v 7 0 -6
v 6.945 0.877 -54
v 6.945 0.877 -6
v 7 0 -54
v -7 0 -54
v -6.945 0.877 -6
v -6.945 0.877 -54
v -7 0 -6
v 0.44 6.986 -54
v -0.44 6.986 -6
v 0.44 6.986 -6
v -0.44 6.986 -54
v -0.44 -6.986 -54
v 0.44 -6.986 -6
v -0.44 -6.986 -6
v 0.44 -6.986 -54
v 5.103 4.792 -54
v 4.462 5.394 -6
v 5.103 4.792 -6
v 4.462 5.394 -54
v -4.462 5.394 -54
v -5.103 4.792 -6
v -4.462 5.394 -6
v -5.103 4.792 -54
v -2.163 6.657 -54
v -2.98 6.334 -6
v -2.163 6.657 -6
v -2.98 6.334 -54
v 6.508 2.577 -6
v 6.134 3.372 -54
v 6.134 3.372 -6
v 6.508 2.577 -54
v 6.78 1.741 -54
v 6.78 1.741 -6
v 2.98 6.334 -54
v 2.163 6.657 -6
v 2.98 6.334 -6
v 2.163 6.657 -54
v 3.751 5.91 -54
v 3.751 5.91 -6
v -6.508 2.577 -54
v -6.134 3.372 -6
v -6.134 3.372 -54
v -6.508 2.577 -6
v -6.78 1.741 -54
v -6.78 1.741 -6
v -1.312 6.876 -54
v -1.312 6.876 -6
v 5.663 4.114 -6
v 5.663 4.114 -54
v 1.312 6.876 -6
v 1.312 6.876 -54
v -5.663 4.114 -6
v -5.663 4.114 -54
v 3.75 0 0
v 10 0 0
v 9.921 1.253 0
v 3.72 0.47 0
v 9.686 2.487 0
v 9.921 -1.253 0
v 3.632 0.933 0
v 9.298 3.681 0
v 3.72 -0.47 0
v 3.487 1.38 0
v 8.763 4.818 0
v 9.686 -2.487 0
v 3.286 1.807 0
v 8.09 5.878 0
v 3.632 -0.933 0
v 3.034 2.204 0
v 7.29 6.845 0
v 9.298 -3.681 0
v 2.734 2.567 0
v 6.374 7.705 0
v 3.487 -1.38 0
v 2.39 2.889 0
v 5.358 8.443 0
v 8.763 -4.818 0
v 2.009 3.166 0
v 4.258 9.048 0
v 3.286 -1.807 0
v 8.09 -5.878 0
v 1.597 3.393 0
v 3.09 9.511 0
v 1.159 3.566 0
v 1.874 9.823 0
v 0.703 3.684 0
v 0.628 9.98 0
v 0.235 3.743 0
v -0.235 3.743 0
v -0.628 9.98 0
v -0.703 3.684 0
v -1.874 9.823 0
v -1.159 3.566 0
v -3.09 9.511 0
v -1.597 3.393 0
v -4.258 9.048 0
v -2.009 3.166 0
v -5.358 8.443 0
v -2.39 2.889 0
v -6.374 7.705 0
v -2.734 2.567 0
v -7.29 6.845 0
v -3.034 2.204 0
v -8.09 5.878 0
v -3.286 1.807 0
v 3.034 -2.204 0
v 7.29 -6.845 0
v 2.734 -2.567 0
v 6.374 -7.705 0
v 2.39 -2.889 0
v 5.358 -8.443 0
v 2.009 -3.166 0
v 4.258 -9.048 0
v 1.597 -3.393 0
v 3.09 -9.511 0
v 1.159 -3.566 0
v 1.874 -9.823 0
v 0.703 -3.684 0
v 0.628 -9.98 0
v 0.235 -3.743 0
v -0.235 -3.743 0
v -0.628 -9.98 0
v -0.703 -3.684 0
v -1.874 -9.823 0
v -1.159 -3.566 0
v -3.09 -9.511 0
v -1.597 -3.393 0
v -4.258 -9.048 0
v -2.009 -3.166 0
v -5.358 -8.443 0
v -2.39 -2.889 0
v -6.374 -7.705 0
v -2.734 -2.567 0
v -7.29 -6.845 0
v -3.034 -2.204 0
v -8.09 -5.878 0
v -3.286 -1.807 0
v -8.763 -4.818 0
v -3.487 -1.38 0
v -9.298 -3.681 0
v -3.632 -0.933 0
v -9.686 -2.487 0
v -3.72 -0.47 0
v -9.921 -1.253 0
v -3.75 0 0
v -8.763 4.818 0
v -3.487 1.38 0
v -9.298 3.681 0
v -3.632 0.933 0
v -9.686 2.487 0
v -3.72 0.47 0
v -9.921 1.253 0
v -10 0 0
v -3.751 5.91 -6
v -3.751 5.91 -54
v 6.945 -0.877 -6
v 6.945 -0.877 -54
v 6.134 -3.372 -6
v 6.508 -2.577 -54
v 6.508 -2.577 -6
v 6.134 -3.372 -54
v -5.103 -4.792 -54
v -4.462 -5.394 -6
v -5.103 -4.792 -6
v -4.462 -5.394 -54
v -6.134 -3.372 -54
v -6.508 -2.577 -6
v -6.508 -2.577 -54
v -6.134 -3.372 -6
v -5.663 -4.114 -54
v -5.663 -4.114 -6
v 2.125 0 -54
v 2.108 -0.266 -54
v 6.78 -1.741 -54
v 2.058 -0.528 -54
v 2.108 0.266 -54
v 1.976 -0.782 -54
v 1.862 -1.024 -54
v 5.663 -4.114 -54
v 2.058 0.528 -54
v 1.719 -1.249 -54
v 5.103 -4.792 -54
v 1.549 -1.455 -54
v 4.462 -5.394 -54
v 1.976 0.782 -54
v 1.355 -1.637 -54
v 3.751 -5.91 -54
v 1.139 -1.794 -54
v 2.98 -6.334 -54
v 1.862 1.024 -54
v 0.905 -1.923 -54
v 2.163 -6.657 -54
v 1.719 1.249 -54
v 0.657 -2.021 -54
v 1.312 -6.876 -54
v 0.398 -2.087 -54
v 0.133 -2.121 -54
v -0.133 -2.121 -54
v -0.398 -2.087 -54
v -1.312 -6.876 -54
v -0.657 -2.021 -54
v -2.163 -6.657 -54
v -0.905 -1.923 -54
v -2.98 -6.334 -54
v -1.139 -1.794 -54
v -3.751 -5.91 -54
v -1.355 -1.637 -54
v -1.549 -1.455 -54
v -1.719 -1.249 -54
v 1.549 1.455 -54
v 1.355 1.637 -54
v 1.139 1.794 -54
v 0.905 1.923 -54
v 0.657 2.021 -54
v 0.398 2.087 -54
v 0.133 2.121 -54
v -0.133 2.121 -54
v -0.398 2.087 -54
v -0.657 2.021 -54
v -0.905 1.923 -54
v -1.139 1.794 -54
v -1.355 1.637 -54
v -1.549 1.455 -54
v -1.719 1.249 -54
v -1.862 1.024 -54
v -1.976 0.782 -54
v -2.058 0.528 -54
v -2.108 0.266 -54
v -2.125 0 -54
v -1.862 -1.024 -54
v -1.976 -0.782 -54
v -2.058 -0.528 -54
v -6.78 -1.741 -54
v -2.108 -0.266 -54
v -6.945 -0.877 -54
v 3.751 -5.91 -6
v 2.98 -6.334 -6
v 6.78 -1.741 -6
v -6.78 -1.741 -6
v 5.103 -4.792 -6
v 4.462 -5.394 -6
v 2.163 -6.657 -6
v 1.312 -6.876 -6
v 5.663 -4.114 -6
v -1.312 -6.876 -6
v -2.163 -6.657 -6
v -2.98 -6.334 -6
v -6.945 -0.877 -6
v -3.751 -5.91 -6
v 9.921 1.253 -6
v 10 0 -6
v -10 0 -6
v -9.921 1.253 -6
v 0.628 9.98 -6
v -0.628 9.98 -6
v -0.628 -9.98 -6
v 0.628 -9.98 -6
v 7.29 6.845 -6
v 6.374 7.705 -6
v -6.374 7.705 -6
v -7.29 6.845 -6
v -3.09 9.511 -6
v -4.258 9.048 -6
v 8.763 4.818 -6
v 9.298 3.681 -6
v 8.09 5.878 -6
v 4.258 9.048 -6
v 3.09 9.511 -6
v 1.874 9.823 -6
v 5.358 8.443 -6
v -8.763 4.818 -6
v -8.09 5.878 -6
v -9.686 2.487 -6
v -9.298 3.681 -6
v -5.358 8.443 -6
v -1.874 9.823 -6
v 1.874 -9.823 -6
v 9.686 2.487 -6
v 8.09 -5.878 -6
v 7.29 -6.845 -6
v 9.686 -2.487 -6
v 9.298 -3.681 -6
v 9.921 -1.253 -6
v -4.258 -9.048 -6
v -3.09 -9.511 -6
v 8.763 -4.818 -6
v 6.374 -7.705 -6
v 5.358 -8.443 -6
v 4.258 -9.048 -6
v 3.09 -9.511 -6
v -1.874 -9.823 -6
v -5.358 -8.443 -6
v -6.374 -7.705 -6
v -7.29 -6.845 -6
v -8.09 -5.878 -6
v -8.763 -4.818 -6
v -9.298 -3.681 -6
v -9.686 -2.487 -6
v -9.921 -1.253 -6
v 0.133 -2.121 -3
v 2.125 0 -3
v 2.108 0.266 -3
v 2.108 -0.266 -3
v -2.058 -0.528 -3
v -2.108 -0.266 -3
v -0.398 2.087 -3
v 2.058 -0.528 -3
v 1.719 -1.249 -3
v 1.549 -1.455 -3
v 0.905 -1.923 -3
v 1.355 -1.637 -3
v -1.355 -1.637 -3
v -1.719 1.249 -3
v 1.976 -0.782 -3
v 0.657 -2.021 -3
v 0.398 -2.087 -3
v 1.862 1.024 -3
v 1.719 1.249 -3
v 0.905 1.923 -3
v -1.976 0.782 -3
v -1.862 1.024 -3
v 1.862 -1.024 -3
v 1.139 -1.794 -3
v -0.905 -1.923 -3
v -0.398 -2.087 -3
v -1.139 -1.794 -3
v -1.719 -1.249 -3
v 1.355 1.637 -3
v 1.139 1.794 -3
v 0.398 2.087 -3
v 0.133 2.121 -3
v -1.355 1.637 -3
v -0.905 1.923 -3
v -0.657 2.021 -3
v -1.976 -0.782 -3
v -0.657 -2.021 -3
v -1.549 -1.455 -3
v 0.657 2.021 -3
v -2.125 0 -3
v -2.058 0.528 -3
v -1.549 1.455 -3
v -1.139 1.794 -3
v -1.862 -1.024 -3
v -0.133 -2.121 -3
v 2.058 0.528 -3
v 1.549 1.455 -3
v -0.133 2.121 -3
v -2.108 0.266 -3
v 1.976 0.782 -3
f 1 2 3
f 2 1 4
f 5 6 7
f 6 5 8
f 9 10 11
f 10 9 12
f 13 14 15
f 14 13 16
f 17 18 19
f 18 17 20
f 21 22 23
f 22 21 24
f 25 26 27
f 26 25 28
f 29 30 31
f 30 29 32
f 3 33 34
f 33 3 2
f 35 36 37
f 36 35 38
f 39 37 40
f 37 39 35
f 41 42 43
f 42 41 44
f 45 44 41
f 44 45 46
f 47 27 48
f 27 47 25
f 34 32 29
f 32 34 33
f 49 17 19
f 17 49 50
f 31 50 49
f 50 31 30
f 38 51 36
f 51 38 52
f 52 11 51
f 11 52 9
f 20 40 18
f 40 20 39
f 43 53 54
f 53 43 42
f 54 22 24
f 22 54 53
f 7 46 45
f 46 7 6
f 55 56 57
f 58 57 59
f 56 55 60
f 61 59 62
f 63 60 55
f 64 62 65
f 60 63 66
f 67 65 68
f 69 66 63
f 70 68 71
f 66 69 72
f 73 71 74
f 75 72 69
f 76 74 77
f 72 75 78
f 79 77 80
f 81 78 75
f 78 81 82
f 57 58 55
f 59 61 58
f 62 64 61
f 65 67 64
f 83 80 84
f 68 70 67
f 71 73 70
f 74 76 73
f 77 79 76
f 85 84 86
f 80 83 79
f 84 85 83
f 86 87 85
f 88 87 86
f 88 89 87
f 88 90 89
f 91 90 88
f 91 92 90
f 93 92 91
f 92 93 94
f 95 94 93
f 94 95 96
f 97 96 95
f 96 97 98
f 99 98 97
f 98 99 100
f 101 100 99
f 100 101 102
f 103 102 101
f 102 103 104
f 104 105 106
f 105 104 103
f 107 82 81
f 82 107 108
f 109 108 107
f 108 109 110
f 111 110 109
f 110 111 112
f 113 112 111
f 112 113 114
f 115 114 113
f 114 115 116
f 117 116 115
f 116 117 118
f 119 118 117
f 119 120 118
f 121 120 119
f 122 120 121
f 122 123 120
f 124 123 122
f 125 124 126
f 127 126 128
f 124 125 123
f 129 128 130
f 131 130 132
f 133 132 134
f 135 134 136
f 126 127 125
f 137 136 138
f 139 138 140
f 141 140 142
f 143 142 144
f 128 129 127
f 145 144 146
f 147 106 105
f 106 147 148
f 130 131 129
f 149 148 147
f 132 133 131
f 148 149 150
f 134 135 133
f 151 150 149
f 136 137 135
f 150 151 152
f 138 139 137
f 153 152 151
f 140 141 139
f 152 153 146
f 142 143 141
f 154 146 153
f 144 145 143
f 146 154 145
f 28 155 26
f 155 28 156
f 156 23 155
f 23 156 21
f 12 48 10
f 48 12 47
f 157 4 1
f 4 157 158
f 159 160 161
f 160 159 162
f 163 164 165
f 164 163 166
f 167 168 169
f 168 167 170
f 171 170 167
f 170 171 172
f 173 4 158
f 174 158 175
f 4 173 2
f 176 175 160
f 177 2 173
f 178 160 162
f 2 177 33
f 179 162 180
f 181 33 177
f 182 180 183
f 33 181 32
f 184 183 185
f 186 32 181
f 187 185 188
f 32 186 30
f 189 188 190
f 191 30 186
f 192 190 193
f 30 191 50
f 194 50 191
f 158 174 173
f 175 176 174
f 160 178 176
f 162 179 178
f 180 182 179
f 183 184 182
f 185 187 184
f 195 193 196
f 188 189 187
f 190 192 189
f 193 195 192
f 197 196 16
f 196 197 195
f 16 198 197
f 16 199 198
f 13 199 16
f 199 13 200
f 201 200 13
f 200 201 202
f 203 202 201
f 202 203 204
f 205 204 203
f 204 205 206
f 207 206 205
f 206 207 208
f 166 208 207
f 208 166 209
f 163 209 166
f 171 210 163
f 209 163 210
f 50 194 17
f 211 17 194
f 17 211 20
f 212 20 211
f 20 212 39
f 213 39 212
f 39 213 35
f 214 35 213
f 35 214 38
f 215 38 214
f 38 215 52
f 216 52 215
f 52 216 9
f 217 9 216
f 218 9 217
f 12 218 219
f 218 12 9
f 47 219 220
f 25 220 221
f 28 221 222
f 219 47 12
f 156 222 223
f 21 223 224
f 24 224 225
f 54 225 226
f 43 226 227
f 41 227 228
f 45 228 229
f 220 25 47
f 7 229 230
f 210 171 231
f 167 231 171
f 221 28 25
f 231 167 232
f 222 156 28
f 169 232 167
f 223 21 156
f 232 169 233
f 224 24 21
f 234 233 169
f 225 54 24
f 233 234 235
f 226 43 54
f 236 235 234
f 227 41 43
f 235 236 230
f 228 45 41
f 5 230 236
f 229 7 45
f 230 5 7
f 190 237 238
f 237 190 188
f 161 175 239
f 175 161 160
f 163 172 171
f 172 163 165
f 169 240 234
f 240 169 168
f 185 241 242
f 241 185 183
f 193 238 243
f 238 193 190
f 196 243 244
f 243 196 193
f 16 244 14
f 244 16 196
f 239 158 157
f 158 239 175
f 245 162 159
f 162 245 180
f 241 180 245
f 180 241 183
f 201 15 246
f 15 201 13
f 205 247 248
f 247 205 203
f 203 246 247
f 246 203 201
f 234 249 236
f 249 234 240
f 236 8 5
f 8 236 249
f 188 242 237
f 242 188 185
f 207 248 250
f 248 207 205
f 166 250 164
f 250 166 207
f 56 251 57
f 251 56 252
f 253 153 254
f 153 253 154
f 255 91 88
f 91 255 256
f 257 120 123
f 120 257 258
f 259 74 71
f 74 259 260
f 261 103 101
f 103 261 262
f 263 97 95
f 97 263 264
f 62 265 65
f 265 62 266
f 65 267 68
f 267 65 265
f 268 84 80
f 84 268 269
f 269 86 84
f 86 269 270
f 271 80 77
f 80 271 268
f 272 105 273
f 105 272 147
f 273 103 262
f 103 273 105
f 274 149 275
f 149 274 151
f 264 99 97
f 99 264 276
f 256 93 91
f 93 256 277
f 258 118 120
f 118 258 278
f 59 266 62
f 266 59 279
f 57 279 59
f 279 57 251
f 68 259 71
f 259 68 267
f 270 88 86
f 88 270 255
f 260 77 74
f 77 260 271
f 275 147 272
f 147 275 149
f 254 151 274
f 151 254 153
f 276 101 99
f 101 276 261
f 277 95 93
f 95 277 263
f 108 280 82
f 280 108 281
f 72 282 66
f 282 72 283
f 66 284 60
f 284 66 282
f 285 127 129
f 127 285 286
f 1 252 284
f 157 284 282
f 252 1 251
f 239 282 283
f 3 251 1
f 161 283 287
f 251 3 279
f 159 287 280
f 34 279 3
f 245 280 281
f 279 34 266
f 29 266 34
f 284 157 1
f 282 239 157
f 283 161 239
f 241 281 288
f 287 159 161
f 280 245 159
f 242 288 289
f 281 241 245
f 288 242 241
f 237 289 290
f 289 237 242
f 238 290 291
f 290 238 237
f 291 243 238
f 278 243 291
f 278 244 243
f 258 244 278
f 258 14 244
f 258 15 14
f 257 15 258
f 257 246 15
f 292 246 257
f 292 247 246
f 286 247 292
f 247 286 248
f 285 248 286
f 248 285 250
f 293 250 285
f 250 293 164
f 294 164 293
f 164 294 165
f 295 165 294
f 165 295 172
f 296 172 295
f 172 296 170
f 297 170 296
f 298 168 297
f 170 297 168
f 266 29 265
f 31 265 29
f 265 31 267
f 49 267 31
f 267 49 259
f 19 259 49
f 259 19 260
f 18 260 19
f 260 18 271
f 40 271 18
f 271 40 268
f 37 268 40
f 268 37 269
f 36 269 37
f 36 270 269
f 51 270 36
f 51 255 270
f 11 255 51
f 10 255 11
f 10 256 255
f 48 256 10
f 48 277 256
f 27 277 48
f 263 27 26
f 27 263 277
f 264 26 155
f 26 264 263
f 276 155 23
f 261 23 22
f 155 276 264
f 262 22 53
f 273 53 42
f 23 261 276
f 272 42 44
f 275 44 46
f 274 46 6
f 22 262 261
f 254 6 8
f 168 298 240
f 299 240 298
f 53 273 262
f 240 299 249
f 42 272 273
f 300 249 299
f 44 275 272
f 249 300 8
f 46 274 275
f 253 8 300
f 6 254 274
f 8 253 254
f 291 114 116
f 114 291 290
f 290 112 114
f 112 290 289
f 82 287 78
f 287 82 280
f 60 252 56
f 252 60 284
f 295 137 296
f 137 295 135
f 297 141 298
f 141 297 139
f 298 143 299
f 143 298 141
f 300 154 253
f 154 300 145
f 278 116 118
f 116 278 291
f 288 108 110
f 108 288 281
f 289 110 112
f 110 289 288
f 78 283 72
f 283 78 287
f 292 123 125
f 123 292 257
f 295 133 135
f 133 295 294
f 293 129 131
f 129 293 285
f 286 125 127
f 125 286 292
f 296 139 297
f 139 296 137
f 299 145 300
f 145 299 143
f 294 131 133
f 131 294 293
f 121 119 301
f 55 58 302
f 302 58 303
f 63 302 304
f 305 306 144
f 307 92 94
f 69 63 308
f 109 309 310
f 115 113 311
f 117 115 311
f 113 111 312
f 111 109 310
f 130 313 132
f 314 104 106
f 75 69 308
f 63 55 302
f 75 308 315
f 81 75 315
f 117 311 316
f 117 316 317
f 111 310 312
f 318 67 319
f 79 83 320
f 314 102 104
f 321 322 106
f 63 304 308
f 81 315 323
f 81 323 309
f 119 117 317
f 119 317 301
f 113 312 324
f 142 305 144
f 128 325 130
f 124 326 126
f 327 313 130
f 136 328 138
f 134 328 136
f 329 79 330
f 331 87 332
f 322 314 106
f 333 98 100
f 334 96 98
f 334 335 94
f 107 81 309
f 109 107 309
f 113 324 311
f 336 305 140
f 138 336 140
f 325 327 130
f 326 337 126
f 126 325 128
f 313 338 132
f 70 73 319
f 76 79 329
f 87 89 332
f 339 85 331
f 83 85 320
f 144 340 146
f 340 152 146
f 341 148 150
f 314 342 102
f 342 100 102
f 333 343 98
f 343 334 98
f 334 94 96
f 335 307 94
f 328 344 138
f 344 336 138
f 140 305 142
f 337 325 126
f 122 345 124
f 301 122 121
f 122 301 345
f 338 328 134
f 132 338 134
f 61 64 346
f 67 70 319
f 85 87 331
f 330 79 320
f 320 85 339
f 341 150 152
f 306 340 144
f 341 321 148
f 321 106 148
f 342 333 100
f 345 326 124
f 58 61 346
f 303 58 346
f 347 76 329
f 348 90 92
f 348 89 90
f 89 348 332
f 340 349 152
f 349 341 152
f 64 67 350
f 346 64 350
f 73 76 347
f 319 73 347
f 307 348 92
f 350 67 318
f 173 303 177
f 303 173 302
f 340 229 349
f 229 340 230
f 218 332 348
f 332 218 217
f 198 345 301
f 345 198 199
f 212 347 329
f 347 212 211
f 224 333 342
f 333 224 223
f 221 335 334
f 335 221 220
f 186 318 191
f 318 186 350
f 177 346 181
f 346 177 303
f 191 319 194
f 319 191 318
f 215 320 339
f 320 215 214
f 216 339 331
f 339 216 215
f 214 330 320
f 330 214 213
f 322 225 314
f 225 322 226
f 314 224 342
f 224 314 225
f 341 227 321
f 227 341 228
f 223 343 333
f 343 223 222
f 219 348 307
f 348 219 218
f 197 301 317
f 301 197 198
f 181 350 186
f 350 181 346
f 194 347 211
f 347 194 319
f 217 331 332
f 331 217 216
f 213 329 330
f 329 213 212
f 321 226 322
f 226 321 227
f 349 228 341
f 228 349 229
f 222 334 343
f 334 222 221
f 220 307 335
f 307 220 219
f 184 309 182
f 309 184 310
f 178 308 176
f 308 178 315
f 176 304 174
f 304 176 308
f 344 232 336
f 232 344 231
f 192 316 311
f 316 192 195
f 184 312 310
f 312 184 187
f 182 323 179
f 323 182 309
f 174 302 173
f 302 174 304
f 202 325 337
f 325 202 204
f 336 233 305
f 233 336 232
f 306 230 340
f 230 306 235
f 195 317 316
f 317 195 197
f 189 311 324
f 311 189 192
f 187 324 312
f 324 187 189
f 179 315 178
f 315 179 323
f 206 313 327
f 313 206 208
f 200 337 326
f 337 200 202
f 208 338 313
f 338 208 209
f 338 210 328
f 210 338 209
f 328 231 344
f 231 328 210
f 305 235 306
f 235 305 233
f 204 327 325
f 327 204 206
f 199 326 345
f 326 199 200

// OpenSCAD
$fn = 50;


difference() {
	union() {
		translate(v = [0, 0, -54.0000000000]) {
			cylinder(h = 54, r = 7.0000000000);
		}
		translate(v = [0, 0, -6.0000000000]) {
			cylinder(h = 6, r = 10.0000000000);
		}
	}
	union() {
		translate(v = [0, 0, 0]) {
			rotate(a = [0, 0, 0]) {
				difference() {
					union() {
						#translate(v = [0, 0, -54.0000000000]) {
							cylinder(h = 54, r = 2.0000000000);
						}
						#translate(v = [0, 0, -3]) {
							cylinder(h = 3, r1 = 2.1250000000, r2 = 3.7500000000);
						}
						#translate(v = [0, 0, -54.0000000000]) {
							cylinder(h = 54, r = 2.1250000000);
						}
						#translate(v = [0, 0, -54.0000000000]) {
							cylinder(h = 54, r = 2.0000000000);
						}
					}
					union();
				}
			}
		}
	}
}
